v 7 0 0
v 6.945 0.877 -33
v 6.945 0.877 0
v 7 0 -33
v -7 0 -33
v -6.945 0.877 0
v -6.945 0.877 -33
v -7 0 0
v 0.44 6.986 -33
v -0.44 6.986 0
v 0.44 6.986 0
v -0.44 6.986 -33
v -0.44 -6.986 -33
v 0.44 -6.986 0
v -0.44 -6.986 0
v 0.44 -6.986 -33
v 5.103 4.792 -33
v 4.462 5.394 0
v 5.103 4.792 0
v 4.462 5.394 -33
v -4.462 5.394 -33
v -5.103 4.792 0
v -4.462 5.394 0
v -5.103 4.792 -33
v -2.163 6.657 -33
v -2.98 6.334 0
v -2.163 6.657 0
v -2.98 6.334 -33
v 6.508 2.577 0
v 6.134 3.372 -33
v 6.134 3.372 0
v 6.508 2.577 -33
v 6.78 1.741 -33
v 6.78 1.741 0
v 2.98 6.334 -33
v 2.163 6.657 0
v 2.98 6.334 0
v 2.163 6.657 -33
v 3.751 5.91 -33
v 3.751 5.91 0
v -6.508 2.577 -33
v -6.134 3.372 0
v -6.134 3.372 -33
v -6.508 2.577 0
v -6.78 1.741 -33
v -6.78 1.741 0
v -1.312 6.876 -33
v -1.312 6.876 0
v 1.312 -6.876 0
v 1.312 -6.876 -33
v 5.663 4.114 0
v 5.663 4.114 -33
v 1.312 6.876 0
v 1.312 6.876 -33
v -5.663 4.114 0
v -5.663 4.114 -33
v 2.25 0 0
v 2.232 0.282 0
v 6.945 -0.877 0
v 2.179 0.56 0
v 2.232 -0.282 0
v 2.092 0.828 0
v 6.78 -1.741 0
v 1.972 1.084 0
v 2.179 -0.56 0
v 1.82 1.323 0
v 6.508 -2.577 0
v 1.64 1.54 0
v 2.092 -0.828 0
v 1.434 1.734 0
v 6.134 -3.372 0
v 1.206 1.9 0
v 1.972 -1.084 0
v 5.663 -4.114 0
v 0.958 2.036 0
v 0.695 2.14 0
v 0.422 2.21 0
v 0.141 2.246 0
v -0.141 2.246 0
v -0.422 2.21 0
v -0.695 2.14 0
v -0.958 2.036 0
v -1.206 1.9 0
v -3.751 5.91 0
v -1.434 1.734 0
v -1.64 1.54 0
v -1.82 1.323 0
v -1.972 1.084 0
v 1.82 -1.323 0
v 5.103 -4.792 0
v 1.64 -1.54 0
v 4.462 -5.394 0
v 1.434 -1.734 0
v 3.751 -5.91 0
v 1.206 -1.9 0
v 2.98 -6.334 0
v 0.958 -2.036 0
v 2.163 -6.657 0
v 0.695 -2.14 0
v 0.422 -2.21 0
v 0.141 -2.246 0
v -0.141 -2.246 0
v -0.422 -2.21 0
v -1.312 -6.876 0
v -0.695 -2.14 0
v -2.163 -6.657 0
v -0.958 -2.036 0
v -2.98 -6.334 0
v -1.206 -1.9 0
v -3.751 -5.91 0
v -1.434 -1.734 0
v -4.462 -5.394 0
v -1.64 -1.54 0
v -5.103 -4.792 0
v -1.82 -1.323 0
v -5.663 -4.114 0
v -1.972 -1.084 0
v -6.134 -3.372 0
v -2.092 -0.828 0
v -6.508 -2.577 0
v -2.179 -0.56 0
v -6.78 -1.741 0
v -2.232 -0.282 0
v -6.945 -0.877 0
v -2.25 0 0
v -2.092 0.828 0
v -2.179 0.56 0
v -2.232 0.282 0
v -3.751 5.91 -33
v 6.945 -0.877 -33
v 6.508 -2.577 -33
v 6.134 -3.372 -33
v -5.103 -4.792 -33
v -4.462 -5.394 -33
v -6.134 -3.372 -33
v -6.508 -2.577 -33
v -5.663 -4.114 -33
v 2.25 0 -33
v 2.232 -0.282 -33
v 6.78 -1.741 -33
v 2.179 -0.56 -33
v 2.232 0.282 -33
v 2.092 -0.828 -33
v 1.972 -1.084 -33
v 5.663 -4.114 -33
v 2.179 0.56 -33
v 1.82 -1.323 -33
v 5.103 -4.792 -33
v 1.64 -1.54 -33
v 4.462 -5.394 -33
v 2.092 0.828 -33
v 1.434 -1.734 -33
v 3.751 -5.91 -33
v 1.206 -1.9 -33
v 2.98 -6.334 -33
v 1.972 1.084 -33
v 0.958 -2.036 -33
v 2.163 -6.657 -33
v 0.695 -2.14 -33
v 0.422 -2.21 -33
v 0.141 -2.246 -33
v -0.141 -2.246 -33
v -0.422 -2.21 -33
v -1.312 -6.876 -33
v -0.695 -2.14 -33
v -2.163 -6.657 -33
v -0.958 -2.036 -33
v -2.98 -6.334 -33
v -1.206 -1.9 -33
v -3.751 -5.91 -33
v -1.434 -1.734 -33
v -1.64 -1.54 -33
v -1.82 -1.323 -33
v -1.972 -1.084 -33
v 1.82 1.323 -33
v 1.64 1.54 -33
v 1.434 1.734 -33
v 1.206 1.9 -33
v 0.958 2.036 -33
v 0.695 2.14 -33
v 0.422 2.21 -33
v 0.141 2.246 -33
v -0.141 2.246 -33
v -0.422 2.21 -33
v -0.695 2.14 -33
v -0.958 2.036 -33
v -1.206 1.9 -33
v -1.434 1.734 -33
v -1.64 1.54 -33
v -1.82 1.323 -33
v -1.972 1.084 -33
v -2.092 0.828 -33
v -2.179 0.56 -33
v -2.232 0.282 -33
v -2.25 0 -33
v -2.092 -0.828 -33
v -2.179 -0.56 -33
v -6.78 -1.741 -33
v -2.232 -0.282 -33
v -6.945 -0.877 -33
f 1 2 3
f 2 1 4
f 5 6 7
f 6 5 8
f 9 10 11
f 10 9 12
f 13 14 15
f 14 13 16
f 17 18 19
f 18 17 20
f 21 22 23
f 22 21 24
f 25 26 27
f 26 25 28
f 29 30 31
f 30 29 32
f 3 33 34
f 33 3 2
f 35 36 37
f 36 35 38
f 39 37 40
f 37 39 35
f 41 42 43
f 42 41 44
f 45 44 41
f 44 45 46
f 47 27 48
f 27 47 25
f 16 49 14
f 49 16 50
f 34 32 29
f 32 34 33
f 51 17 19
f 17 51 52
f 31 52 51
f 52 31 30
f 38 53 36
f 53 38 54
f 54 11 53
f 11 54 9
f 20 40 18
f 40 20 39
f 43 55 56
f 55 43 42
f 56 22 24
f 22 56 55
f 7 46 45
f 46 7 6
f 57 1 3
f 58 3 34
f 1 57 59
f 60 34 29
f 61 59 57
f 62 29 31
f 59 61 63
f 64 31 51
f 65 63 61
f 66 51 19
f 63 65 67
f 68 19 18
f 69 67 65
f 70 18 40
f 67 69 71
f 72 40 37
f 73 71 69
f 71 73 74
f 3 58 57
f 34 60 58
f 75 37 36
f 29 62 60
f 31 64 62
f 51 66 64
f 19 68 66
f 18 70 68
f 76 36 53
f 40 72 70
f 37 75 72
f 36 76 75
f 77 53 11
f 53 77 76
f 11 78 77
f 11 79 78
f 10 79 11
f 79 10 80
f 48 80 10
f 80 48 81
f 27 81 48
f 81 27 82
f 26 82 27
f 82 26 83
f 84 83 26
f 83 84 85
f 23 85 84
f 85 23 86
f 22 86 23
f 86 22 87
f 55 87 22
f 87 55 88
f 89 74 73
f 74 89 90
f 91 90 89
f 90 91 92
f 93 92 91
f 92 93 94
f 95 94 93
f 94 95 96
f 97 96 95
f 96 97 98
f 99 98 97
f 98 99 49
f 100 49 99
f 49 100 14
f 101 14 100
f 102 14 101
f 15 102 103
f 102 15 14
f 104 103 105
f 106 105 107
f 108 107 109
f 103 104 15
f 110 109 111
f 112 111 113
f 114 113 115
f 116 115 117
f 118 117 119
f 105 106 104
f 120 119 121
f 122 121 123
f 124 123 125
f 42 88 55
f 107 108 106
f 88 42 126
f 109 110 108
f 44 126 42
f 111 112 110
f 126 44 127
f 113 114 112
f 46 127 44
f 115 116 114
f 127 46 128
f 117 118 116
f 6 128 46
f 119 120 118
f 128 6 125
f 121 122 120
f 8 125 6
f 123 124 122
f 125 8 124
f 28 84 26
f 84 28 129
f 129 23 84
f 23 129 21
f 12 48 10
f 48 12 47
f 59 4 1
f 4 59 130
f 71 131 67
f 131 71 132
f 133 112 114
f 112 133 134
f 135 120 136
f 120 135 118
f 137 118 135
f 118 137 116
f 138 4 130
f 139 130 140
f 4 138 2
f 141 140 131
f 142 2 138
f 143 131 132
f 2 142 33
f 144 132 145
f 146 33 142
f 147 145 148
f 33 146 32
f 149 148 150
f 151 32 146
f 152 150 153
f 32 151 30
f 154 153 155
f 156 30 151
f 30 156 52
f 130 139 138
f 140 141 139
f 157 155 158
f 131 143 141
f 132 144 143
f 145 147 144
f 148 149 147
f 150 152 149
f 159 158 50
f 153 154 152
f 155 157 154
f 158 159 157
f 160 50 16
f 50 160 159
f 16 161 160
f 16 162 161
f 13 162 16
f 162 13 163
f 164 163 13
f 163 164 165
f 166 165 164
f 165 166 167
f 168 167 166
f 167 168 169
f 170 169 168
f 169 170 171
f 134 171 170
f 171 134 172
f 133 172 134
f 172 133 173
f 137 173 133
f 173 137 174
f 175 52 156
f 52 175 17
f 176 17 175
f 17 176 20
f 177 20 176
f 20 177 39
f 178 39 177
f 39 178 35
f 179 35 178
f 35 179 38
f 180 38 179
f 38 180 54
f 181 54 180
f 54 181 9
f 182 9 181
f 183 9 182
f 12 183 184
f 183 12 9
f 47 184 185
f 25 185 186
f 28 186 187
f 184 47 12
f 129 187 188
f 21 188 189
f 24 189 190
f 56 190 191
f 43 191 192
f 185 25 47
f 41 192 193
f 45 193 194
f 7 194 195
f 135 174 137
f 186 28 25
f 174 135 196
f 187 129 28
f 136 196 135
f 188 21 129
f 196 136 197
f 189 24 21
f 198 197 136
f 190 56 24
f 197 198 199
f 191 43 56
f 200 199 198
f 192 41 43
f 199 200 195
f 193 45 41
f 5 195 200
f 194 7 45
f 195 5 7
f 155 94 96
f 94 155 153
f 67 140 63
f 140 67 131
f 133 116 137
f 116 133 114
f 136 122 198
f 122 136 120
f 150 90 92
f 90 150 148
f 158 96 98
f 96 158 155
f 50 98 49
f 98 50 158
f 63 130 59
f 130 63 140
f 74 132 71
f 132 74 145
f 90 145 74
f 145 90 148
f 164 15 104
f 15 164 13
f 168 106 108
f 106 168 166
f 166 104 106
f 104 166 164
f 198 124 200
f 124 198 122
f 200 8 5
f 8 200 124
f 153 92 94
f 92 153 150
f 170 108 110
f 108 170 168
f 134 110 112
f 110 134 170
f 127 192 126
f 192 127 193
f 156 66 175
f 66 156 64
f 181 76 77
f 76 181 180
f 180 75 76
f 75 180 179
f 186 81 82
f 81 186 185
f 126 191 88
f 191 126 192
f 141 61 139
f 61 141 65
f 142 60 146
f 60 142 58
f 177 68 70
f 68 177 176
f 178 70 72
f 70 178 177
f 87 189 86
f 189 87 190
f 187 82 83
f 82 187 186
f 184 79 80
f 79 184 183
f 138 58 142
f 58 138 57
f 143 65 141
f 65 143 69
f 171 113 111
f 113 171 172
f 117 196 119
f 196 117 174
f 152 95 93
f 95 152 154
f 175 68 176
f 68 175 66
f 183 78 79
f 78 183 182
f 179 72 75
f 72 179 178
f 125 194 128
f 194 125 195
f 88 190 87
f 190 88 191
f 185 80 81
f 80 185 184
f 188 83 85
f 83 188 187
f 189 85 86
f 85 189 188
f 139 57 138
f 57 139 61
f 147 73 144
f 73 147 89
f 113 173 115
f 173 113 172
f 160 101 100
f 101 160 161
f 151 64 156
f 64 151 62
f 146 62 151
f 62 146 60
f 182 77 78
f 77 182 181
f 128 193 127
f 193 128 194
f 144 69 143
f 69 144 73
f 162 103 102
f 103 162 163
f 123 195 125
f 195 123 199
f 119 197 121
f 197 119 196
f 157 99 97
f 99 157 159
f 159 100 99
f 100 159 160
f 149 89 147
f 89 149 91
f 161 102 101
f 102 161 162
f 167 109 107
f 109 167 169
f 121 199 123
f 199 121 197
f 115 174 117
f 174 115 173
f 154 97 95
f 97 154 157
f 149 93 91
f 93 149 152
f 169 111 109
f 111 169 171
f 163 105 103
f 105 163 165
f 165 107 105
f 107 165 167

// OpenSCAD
$fn = 50;


difference() {
	union() {
		translate(v = [0, 0, -33.0000000000]) {
			cylinder(h = 33, r = 7.0000000000);
		}
		cylinder(h = 0, r = 16.0000000000);
	}
	union() {
		#translate(v = [0, 0, -33]) {
			cylinder(h = 33, r = 2.2500000000);
		}
	}
}
